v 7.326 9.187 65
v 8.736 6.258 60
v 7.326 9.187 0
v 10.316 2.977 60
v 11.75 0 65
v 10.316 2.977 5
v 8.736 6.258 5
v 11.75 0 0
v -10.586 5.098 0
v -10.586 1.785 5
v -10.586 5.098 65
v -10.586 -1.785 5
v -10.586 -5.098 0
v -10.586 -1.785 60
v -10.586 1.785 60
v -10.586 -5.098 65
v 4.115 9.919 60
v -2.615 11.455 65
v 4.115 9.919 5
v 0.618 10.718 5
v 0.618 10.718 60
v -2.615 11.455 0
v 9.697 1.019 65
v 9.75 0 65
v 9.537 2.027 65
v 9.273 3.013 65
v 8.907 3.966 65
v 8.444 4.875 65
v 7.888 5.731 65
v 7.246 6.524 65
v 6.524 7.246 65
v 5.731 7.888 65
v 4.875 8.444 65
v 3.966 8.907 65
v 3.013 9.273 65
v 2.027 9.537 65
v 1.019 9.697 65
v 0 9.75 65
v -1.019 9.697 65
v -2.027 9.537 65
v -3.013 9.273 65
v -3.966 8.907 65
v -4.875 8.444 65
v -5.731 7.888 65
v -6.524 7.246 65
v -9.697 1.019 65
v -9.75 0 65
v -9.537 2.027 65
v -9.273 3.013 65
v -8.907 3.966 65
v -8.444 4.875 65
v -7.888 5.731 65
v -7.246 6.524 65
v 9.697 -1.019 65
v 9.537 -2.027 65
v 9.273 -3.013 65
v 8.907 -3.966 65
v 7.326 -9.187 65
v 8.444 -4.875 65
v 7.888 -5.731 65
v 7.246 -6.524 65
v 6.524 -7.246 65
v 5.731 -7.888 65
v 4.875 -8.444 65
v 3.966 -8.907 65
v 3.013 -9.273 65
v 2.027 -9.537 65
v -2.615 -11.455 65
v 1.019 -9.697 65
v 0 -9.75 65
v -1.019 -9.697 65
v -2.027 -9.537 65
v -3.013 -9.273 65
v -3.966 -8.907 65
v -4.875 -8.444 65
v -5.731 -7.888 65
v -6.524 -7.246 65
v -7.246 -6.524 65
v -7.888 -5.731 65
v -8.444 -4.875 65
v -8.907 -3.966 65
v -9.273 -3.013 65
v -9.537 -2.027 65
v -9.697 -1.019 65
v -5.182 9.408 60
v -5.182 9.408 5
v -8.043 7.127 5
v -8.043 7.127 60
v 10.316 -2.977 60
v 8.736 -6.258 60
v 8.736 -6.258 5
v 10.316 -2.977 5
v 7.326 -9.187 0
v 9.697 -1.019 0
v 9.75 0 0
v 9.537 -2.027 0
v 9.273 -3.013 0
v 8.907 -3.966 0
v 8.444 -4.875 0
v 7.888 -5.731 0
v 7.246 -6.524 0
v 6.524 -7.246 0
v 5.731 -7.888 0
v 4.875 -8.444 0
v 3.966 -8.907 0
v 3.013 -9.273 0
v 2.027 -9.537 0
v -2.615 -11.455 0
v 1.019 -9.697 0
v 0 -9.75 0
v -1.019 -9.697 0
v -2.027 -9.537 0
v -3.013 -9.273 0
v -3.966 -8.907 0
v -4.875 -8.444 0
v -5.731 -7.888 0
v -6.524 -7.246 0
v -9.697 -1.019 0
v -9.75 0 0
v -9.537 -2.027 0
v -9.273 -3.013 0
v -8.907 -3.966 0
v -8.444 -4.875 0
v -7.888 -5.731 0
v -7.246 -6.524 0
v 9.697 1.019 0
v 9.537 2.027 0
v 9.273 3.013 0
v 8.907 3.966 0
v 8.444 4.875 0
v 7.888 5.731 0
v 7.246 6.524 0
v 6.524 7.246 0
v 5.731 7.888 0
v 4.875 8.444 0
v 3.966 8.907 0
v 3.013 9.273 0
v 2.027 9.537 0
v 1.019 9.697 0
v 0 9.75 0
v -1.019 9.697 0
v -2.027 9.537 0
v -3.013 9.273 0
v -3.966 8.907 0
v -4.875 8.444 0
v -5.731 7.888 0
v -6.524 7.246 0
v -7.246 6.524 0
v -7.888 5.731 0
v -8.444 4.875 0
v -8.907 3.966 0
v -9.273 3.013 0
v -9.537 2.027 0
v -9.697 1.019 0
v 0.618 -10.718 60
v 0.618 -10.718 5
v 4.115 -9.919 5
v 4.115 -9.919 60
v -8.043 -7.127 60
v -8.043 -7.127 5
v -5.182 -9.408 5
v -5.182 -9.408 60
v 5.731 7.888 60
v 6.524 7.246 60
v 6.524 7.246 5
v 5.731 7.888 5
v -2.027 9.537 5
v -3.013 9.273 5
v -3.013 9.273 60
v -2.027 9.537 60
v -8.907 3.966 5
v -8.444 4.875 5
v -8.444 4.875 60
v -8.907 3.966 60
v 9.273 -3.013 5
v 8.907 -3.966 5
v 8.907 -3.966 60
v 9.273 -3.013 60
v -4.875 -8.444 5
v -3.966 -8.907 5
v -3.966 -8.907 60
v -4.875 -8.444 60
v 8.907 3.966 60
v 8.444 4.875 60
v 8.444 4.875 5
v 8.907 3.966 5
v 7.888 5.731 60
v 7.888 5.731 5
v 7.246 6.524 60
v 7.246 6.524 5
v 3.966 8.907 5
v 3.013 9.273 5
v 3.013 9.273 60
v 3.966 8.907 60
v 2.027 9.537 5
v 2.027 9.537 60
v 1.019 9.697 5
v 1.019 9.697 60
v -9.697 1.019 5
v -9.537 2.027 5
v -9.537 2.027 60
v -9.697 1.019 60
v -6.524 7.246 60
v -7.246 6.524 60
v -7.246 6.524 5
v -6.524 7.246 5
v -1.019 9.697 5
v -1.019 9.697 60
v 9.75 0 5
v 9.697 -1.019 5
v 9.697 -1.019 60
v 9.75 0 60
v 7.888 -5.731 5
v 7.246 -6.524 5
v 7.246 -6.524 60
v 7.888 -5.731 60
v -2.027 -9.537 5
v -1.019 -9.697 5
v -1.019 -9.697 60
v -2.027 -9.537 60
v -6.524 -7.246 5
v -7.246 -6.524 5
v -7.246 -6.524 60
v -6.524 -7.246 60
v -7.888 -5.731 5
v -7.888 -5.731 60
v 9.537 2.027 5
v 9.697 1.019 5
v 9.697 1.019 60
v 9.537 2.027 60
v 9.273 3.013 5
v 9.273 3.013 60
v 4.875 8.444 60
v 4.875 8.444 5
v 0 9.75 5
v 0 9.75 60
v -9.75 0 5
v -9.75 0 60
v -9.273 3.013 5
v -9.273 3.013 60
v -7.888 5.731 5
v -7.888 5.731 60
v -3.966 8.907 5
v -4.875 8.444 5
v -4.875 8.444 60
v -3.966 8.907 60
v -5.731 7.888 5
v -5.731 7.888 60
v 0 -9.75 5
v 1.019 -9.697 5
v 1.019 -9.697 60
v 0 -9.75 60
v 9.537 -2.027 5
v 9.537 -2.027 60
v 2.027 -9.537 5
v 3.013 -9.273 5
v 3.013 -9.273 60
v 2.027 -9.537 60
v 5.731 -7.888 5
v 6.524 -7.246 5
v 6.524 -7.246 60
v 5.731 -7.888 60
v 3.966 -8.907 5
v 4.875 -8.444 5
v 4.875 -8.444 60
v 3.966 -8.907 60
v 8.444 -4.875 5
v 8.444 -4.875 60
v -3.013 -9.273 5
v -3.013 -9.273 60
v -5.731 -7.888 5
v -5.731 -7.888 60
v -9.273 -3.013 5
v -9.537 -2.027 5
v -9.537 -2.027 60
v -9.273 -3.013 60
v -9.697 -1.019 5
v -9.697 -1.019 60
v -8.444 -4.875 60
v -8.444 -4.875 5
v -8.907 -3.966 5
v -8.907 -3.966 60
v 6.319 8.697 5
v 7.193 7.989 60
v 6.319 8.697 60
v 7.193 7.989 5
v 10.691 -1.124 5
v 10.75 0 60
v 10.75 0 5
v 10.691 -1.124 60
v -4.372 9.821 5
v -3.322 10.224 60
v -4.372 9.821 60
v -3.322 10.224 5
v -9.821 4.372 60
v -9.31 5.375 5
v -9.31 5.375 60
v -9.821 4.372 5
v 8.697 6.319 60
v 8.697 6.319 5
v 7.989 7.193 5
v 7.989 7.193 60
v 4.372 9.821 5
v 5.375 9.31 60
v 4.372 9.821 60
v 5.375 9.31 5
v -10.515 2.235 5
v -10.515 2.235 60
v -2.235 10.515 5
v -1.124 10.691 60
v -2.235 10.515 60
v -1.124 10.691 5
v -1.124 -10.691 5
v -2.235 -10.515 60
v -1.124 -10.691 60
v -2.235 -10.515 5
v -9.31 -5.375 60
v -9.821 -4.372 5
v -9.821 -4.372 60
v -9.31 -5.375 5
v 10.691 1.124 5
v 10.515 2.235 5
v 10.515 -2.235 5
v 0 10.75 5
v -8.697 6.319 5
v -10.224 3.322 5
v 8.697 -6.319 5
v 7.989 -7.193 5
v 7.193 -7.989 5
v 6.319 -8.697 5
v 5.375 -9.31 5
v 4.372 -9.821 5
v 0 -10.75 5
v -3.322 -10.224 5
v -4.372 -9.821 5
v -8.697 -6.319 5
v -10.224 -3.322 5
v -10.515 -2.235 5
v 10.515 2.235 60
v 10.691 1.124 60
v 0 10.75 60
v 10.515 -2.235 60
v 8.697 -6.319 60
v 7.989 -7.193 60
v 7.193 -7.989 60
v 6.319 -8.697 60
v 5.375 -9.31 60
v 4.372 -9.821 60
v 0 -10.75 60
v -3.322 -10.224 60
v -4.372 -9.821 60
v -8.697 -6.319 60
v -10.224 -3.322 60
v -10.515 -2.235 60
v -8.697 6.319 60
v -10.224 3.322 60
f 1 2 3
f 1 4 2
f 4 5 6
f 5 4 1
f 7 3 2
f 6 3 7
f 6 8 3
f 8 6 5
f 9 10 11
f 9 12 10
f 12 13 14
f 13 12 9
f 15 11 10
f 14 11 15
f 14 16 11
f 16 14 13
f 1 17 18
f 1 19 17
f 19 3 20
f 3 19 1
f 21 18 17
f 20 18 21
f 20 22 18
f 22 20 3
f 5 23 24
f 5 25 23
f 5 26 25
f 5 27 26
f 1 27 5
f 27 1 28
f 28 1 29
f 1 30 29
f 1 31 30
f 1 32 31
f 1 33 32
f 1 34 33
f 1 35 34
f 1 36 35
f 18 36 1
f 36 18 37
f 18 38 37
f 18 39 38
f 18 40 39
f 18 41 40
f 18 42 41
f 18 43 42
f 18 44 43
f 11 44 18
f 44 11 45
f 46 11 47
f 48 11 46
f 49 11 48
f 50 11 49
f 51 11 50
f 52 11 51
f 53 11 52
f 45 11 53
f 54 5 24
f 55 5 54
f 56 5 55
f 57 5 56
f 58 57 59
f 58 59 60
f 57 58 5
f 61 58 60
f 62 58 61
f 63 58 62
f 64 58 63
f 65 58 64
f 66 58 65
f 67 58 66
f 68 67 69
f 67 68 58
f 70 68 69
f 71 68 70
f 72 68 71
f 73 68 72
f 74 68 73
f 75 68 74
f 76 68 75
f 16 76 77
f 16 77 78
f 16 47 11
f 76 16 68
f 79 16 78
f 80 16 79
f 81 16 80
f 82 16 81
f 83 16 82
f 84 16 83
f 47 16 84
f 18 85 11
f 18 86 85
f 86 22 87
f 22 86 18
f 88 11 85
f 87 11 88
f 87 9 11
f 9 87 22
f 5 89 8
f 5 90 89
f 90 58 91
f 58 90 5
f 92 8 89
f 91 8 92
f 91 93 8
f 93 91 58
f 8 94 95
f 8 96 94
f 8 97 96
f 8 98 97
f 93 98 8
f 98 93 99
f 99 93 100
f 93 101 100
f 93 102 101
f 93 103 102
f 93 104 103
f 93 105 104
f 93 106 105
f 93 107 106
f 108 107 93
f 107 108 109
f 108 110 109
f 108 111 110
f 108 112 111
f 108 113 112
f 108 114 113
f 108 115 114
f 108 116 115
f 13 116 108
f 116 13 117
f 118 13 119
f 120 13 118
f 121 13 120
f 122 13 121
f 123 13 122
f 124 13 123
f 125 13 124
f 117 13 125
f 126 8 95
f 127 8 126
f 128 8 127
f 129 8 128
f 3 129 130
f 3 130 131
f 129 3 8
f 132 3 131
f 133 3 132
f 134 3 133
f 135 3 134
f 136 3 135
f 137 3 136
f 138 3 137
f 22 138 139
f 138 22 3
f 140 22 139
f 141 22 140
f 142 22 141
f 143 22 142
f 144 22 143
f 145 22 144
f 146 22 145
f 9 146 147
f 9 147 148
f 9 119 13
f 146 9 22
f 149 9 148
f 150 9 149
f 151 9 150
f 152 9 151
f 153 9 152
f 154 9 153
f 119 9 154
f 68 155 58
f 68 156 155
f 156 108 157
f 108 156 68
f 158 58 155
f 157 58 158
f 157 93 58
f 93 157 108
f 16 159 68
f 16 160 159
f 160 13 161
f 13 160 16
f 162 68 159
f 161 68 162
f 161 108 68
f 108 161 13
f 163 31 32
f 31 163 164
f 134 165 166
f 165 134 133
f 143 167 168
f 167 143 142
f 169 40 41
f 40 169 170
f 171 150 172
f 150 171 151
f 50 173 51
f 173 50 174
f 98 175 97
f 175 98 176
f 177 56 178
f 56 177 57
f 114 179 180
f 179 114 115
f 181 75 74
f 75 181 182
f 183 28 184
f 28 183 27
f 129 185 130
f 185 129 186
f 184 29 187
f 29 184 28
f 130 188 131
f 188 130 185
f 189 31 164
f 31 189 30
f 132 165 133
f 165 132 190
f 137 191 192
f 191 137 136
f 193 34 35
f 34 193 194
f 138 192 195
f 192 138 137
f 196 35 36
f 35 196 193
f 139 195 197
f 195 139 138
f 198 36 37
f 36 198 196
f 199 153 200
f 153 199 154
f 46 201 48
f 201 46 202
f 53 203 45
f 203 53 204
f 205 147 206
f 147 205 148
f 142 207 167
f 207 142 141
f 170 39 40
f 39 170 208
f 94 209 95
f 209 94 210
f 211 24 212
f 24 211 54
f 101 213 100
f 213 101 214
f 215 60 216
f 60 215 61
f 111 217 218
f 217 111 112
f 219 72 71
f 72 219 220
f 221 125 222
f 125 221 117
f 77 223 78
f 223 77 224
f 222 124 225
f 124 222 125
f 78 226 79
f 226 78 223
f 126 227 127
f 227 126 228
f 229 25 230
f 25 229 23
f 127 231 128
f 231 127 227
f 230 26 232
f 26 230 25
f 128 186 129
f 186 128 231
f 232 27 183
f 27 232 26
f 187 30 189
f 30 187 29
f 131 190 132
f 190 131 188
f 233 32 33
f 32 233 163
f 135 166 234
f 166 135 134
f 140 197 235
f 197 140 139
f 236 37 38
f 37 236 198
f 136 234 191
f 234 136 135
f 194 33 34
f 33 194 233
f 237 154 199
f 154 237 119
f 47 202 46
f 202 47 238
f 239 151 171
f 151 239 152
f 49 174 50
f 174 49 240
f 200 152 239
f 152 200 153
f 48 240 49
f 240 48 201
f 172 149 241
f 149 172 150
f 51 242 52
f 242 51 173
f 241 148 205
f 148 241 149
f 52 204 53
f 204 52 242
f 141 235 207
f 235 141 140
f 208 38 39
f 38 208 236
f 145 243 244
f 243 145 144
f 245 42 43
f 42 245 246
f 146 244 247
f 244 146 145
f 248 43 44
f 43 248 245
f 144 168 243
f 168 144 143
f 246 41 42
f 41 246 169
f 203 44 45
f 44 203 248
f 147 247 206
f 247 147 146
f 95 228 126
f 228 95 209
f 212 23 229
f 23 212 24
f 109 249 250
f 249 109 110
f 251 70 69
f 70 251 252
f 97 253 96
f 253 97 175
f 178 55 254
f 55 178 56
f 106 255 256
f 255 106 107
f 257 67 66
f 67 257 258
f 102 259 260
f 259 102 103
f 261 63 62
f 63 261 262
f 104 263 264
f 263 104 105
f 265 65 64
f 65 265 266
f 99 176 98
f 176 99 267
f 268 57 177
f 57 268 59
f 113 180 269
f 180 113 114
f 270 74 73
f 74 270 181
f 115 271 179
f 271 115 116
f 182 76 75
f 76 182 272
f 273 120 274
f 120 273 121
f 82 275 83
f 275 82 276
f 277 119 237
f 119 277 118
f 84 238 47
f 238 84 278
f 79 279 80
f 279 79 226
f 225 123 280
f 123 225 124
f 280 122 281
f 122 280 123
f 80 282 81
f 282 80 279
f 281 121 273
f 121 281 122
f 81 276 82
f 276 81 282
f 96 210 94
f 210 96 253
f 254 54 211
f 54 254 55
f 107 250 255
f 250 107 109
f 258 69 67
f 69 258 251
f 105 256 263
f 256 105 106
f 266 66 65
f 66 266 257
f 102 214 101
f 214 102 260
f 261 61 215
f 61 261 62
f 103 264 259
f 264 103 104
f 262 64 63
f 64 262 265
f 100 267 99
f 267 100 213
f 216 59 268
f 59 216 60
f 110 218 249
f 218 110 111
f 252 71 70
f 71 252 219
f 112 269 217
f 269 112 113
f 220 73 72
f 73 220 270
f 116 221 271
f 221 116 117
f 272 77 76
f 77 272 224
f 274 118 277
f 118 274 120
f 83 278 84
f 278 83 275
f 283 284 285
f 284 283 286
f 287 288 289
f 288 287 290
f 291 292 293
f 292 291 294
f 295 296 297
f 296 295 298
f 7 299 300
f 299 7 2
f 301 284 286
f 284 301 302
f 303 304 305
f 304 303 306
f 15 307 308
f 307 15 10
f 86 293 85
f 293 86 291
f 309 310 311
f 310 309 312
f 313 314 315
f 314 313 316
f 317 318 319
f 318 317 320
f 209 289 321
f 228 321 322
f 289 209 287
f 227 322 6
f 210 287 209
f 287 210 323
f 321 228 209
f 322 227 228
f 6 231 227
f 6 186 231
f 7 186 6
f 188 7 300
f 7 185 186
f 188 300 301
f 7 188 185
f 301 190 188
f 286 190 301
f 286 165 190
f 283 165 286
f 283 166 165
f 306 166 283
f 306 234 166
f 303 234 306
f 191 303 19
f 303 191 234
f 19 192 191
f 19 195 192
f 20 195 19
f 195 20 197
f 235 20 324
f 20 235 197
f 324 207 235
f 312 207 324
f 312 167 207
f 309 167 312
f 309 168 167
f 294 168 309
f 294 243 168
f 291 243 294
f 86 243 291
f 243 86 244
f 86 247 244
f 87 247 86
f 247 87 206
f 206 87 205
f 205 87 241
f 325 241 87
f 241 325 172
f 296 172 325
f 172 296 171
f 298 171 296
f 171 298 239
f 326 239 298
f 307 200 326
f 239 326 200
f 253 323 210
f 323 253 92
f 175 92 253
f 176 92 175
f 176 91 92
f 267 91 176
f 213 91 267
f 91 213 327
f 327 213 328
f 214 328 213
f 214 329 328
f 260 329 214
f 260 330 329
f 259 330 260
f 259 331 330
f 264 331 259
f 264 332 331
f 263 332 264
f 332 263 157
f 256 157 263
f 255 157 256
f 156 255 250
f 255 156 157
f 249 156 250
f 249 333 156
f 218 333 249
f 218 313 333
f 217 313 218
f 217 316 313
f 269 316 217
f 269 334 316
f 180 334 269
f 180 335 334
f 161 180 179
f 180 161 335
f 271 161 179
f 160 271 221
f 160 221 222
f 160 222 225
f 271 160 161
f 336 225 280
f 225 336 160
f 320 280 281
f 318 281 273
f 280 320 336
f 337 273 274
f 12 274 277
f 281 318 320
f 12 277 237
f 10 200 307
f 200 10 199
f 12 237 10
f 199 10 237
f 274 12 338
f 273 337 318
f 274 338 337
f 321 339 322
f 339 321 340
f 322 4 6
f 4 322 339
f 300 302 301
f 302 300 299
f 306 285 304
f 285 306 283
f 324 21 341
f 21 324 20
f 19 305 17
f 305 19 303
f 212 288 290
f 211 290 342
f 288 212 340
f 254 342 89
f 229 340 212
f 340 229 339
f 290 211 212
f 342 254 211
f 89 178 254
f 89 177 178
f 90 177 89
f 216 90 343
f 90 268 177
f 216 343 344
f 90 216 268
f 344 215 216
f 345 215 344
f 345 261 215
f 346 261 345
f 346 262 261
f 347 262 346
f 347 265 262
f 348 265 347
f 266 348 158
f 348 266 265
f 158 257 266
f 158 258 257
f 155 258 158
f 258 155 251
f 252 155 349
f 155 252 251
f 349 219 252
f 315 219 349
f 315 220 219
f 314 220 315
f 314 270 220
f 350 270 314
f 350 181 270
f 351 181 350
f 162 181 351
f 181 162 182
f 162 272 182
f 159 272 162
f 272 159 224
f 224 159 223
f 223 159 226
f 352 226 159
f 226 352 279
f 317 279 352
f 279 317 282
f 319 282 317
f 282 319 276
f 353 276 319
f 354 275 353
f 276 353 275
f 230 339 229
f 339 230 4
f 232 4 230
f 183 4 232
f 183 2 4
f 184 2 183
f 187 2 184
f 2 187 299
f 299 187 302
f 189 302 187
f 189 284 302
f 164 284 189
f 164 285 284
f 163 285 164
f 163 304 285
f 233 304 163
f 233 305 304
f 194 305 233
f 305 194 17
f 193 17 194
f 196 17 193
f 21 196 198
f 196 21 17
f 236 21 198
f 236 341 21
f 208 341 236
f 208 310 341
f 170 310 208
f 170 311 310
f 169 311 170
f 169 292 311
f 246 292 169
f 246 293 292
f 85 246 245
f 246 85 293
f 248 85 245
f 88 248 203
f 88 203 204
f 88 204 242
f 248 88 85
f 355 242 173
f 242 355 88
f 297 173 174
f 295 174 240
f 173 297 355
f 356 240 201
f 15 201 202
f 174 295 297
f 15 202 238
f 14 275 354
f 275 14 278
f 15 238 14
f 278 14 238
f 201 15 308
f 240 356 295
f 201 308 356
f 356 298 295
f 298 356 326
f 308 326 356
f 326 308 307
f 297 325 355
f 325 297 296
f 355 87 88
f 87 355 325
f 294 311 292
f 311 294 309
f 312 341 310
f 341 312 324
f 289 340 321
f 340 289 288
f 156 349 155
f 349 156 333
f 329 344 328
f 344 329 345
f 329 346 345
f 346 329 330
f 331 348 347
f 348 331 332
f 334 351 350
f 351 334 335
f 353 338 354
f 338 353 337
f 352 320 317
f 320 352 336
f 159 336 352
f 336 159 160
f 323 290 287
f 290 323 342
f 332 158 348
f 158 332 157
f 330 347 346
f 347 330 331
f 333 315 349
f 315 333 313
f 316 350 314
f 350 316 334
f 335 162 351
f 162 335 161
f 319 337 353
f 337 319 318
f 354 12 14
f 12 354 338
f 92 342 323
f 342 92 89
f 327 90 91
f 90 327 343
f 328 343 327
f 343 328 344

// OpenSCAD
$fn=60;
outer_d = 23.5;
inner_d = 19.5;
height = 65.0;
difference()
{
    cylinder(d=outer_d, h= height,$fn=7);
    cylinder(d=inner_d, h= height,$fn=60);
    translate([0,0,5]) cylinder(d=inner_d+2, h= height-10,$fn=60);
}
